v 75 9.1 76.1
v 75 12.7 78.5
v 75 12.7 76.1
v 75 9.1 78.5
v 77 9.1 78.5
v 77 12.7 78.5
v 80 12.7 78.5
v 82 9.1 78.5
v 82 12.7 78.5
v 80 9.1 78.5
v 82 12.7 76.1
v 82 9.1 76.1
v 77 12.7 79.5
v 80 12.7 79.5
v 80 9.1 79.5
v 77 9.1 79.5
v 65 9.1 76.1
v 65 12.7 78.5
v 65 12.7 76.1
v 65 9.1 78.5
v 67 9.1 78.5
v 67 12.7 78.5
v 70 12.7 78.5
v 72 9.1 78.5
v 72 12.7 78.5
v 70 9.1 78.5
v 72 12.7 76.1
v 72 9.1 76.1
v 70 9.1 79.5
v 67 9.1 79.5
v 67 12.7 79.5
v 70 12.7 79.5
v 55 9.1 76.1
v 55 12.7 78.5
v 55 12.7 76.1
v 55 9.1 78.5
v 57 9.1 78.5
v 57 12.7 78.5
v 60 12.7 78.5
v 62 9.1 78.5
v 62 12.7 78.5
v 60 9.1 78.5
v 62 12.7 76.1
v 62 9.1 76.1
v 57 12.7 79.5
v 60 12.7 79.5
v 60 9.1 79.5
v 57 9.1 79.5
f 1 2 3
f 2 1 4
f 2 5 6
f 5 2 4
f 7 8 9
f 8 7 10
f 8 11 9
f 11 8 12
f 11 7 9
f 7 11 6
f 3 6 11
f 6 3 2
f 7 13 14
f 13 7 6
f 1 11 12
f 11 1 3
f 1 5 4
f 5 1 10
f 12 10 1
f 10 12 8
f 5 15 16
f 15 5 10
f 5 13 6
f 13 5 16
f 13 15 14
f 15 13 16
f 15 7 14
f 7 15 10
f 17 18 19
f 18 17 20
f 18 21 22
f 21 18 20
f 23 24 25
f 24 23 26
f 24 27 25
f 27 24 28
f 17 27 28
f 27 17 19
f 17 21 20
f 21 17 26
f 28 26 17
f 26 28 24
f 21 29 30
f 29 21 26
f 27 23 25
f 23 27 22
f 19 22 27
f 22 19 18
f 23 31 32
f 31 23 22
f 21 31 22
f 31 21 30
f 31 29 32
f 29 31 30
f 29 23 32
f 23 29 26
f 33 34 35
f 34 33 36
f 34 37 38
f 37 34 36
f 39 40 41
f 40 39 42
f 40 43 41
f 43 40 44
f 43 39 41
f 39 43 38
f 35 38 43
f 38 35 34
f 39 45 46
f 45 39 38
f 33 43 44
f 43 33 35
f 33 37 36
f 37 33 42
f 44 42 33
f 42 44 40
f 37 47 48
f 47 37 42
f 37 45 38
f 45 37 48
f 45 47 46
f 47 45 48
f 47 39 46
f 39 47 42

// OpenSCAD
// file: D:/Projects/assembly-workshop/outputs/Screen_Pi_Hue_SCR5-H_2026-10-30/checks/geometry.scad
// SCR5-G; mm; FRONT view: X right, Z up, Y into rack. Glass/plate front Y=0.
// Measured values: work/screen-5in/Dimensions.md. Physical fit/strength UNKNOWN.
part="plate";
DROP=0.45; // coupon winner can be substituted here; all three pins use this DROP
LIP=0.8; LIP_ON=true;
LIP_EDGES=[true,true,false,false]; // left,right,bottom,top; Brian: side lips only, cosmetic
FRAME_STEP=1.5; // measured glass-edge inset to metal LCD frame, left/right only
SHIM=0; // moves rear frame seat and plate-boss mating face back
$fn=48;
GCX=33; GCZ=41.5; PW=252; PH=88.8; PT=4;
GW=120.7; GH=77.2; CLEAR=0.2; WW=GW+2*CLEAR; WH=GH+2*CLEAR;
SEAT=13.3+SHIM; FT=3;
SO=[56.45,34]; BTN_X=[45.5,35.5,25.5];
PCB_TOP=38; GAP=0.10; LEAF_T=0.8;
HOLE=[3.4,40.3,44.7];
BX=[GCX-68,GCX+68]; BZ=[10,72];
// DSI connector X extent is unmeasured: conservative assumed 8 mm inward from PCB edge.
DSI=[GCX-60.5,9.1,GCZ-38+30,8,5.25,21];
module xz(y,d){translate([0,y+d,0])rotate([90,0,0])linear_extrude(d)children();}
// rr/rack_slots copied from SCR5-F; same exact slot centres, outline shifted -0.05 Z to centre 44.4.
module rr(w,h,r){hull()for(x=[-w/2+r,w/2-r],z=[-h/2+r,h/2-r])translate([x,z])circle(r=r);}
module rack_slots(){for(x=[-118.2625,118.2625],z=[6.323,38.127,50.773,82.577])translate([x,z])hull()for(dx=[-1.5,1.5])translate([dx,0])circle(d=7);}
module cyl_y(x,y,z,d,h){translate([x,y,z])rotate([-90,0,0])cylinder(d=d,h=h);}
module window_cut(){
  xz(-0.02,4.04)translate([GCX,GCZ])square([WW,WH],center=true);
  // 0.3 x 45-degree chamfer, square corners, front only.
  translate([GCX,0.3,GCZ])rotate([90,0,0])
    linear_extrude(height=0.3,scale=[(WW+0.6)/WW,(WH+0.6)/WH])square([WW,WH],center=true);
}
module lips(){
  // Cosmetic side ledges only; rear frame/standoffs set depth and retain the screen.
  if(LIP_ON)for(i=[0:3])if(LIP_EDGES[i]){
    if(i<2)translate([GCX+(i==0?-WW/2:WW/2-LIP),2.5,GCZ-GH/2+4])cube([LIP,0.8,GH-8]);
    else translate([GCX-GW/2+4,2.5,GCZ+(i==2?-WH/2:WH/2-LIP)])cube([GW-8,0.8,LIP]);
  }
}
// Leaf/nub/bump geometry copied from SCR5-WP-A, translated to this glass centre.
module leaves(){for(x=BTN_X)translate([GCX+x-1.5,0,GCZ]){
  translate([0,0,PCB_TOP+GAP+0.9+0.1])cube([3,11.8,LEAF_T]);
  translate([0,10.2,PCB_TOP+GAP])cube([3,1.4,1.0+LEAF_T/2]);
  translate([0,10.4,PCB_TOP+GAP+1.0+LEAF_T])cube([3,1.0,0.9]);
}}
module plate(){difference(){union(){
  difference(){xz(0,PT)translate([0,PH/2])rr(PW,PH,2.5);window_cut();}
  for(x=BX,z=BZ)cyl_y(x,3.9,z,8,SEAT-3.9);
  leaves(); lips();
 }
 xz(-0.02,4.04)rack_slots();
 for(x=BTN_X)translate([GCX+x-HOLE[0]/2,-0.02,GCZ+HOLE[1]])cube([HOLE[0],SEAT+FT+0.04,HOLE[2]-HOLE[1]]);
 // Printed-in screw pilots (no heat-set OD assumption): nominal M2.5, fit UNKNOWN.
 for(x=BX,z=BZ)cyl_y(x,SEAT-6,z,2.1,6.02);
 // Rear engraving, 0.5 deep, left field.
 xz(3.5,0.52)translate([-75,40])mirror([1,0])text("SCR5-G",size=6,halign="center",font="Liberation Sans:style=Bold");
}}
module frame_blank(){
  // C-shaped perimeter; no material across the board centre / touch FPC.
  xz(SEAT,FT)translate([GCX,GCZ])difference(){square([132,76],center=true);square([116,60],center=true);}
  for(sx=[-1,1],sz=[-1,1])cyl_y(GCX+sx*SO[0],SEAT,GCZ+sz*SO[1],9,FT);
  for(x=BX,z=BZ)hull(){cyl_y(x,SEAT,z,8,FT);cyl_y(GCX+(x<GCX?-62:62),SEAT,z,8,FT);}
}
module dsi_keepout(){translate([DSI[0]-3,DSI[1]-3,DSI[2]-3])cube([DSI[3]+6,DSI[4]+6,DSI[5]+6]);}
module ribbon_route(){
  // Open left/up corridor 18 mm wide; extends past top of plate.
  translate([GCX-84,6.1,GCZ-11])cube([18,24,65]);
  translate([GCX-84,6.1,GCZ-11])cube([32,24,27]);
}
module frame(){difference(){frame_blank();dsi_keepout();ribbon_route();
 for(sx=[-1,1],sz=[-1,1])cyl_y(GCX+sx*SO[0],SEAT-0.02,GCZ+sz*SO[1],2.8,FT+0.04);
 for(x=BX,z=BZ)cyl_y(x,SEAT-0.02,z,2.8,FT+0.04);
}}
// Pin polygon/cap/notch/dot design copied unchanged from SCR5-WP-A.
module pin(d,dots){s=2*d+0.5;difference(){union(){
 translate([-1.5,0,0])rotate([90,0,90])linear_extrude(3)polygon([
 [-s-0.02,40.5],[10.2,40.5],[10.2,41.0],[11.5,41.0],[11.5+2*d,41.0-d],[15,41.0-d],[15,44.5],[-s-0.02,44.5]]);
 translate([-2.5,-s-1.5,39.6])cube([5,1.5,5.8]);
 }for(i=[0:dots-1])translate([(i-(dots-1)/2)*1.4,-s-1.5-0.01,43.5])rotate([-90,0,0])cylinder(d=0.9,h=0.4);}}
module placed_pin(i){translate([GCX+BTN_X[i],0,GCZ])pin(DROP,i+1);}
// Measured layers: cover glass 0.9 + second glass 1.6, metal frame 3.0,
// open gap 2.0, PCB 1.6. Metal frame inset ~1.5 at LEFT/RIGHT only.
// PCB centred under glass and full metal-frame top/bottom extent remain UNKNOWN.
module glass(){translate([GCX-GW/2,0,GCZ-GH/2])cube([GW,2.5,GH]);}
module lcd(){
  translate([GCX-GW/2+FRAME_STEP,2.5,GCZ-GH/2])cube([GW-2*FRAME_STEP,3.0,GH]);
}
module pcb(){translate([GCX-60.5,7.5,GCZ-38])cube([121,1.6,76]);}
module standoffs(){for(sx=[-1,1],sz=[-1,1])difference(){cyl_y(GCX+sx*SO[0],9.1,GCZ+sz*SO[1],5.5,4.2);cyl_y(GCX+sx*SO[0],9.08,GCZ+sz*SO[1],2.5,4.24);}}
module buttons(){for(x=BTN_X){
 translate([GCX+x-3.5,9.1,GCZ+38-3.4])cube([7,3.6,2.4]);
 translate([GCX+x-1.5,9.1,GCZ+37])cube([3,3.6,1]);
}}
module dsi(){translate([DSI[0],DSI[1],DSI[2]])cube([DSI[3],DSI[4],DSI[5]]);}
module touch(){translate([GCX-10,9.1,GCZ-5])cube([20,2,10]);} // lateral extent unmeasured
module dummy(){glass();lcd();pcb();standoffs();buttons();dsi();touch();}
module assembly(){color("gray")plate();color("orange")frame();for(i=[0:2])color("cyan")placed_pin(i);color([0.2,0.3,0.4,0.4])dummy();}
// main file
include <D:/Projects/assembly-workshop/outputs/Screen_Pi_Hue_SCR5-H_2026-10-30/checks/geometry.scad>
buttons();
